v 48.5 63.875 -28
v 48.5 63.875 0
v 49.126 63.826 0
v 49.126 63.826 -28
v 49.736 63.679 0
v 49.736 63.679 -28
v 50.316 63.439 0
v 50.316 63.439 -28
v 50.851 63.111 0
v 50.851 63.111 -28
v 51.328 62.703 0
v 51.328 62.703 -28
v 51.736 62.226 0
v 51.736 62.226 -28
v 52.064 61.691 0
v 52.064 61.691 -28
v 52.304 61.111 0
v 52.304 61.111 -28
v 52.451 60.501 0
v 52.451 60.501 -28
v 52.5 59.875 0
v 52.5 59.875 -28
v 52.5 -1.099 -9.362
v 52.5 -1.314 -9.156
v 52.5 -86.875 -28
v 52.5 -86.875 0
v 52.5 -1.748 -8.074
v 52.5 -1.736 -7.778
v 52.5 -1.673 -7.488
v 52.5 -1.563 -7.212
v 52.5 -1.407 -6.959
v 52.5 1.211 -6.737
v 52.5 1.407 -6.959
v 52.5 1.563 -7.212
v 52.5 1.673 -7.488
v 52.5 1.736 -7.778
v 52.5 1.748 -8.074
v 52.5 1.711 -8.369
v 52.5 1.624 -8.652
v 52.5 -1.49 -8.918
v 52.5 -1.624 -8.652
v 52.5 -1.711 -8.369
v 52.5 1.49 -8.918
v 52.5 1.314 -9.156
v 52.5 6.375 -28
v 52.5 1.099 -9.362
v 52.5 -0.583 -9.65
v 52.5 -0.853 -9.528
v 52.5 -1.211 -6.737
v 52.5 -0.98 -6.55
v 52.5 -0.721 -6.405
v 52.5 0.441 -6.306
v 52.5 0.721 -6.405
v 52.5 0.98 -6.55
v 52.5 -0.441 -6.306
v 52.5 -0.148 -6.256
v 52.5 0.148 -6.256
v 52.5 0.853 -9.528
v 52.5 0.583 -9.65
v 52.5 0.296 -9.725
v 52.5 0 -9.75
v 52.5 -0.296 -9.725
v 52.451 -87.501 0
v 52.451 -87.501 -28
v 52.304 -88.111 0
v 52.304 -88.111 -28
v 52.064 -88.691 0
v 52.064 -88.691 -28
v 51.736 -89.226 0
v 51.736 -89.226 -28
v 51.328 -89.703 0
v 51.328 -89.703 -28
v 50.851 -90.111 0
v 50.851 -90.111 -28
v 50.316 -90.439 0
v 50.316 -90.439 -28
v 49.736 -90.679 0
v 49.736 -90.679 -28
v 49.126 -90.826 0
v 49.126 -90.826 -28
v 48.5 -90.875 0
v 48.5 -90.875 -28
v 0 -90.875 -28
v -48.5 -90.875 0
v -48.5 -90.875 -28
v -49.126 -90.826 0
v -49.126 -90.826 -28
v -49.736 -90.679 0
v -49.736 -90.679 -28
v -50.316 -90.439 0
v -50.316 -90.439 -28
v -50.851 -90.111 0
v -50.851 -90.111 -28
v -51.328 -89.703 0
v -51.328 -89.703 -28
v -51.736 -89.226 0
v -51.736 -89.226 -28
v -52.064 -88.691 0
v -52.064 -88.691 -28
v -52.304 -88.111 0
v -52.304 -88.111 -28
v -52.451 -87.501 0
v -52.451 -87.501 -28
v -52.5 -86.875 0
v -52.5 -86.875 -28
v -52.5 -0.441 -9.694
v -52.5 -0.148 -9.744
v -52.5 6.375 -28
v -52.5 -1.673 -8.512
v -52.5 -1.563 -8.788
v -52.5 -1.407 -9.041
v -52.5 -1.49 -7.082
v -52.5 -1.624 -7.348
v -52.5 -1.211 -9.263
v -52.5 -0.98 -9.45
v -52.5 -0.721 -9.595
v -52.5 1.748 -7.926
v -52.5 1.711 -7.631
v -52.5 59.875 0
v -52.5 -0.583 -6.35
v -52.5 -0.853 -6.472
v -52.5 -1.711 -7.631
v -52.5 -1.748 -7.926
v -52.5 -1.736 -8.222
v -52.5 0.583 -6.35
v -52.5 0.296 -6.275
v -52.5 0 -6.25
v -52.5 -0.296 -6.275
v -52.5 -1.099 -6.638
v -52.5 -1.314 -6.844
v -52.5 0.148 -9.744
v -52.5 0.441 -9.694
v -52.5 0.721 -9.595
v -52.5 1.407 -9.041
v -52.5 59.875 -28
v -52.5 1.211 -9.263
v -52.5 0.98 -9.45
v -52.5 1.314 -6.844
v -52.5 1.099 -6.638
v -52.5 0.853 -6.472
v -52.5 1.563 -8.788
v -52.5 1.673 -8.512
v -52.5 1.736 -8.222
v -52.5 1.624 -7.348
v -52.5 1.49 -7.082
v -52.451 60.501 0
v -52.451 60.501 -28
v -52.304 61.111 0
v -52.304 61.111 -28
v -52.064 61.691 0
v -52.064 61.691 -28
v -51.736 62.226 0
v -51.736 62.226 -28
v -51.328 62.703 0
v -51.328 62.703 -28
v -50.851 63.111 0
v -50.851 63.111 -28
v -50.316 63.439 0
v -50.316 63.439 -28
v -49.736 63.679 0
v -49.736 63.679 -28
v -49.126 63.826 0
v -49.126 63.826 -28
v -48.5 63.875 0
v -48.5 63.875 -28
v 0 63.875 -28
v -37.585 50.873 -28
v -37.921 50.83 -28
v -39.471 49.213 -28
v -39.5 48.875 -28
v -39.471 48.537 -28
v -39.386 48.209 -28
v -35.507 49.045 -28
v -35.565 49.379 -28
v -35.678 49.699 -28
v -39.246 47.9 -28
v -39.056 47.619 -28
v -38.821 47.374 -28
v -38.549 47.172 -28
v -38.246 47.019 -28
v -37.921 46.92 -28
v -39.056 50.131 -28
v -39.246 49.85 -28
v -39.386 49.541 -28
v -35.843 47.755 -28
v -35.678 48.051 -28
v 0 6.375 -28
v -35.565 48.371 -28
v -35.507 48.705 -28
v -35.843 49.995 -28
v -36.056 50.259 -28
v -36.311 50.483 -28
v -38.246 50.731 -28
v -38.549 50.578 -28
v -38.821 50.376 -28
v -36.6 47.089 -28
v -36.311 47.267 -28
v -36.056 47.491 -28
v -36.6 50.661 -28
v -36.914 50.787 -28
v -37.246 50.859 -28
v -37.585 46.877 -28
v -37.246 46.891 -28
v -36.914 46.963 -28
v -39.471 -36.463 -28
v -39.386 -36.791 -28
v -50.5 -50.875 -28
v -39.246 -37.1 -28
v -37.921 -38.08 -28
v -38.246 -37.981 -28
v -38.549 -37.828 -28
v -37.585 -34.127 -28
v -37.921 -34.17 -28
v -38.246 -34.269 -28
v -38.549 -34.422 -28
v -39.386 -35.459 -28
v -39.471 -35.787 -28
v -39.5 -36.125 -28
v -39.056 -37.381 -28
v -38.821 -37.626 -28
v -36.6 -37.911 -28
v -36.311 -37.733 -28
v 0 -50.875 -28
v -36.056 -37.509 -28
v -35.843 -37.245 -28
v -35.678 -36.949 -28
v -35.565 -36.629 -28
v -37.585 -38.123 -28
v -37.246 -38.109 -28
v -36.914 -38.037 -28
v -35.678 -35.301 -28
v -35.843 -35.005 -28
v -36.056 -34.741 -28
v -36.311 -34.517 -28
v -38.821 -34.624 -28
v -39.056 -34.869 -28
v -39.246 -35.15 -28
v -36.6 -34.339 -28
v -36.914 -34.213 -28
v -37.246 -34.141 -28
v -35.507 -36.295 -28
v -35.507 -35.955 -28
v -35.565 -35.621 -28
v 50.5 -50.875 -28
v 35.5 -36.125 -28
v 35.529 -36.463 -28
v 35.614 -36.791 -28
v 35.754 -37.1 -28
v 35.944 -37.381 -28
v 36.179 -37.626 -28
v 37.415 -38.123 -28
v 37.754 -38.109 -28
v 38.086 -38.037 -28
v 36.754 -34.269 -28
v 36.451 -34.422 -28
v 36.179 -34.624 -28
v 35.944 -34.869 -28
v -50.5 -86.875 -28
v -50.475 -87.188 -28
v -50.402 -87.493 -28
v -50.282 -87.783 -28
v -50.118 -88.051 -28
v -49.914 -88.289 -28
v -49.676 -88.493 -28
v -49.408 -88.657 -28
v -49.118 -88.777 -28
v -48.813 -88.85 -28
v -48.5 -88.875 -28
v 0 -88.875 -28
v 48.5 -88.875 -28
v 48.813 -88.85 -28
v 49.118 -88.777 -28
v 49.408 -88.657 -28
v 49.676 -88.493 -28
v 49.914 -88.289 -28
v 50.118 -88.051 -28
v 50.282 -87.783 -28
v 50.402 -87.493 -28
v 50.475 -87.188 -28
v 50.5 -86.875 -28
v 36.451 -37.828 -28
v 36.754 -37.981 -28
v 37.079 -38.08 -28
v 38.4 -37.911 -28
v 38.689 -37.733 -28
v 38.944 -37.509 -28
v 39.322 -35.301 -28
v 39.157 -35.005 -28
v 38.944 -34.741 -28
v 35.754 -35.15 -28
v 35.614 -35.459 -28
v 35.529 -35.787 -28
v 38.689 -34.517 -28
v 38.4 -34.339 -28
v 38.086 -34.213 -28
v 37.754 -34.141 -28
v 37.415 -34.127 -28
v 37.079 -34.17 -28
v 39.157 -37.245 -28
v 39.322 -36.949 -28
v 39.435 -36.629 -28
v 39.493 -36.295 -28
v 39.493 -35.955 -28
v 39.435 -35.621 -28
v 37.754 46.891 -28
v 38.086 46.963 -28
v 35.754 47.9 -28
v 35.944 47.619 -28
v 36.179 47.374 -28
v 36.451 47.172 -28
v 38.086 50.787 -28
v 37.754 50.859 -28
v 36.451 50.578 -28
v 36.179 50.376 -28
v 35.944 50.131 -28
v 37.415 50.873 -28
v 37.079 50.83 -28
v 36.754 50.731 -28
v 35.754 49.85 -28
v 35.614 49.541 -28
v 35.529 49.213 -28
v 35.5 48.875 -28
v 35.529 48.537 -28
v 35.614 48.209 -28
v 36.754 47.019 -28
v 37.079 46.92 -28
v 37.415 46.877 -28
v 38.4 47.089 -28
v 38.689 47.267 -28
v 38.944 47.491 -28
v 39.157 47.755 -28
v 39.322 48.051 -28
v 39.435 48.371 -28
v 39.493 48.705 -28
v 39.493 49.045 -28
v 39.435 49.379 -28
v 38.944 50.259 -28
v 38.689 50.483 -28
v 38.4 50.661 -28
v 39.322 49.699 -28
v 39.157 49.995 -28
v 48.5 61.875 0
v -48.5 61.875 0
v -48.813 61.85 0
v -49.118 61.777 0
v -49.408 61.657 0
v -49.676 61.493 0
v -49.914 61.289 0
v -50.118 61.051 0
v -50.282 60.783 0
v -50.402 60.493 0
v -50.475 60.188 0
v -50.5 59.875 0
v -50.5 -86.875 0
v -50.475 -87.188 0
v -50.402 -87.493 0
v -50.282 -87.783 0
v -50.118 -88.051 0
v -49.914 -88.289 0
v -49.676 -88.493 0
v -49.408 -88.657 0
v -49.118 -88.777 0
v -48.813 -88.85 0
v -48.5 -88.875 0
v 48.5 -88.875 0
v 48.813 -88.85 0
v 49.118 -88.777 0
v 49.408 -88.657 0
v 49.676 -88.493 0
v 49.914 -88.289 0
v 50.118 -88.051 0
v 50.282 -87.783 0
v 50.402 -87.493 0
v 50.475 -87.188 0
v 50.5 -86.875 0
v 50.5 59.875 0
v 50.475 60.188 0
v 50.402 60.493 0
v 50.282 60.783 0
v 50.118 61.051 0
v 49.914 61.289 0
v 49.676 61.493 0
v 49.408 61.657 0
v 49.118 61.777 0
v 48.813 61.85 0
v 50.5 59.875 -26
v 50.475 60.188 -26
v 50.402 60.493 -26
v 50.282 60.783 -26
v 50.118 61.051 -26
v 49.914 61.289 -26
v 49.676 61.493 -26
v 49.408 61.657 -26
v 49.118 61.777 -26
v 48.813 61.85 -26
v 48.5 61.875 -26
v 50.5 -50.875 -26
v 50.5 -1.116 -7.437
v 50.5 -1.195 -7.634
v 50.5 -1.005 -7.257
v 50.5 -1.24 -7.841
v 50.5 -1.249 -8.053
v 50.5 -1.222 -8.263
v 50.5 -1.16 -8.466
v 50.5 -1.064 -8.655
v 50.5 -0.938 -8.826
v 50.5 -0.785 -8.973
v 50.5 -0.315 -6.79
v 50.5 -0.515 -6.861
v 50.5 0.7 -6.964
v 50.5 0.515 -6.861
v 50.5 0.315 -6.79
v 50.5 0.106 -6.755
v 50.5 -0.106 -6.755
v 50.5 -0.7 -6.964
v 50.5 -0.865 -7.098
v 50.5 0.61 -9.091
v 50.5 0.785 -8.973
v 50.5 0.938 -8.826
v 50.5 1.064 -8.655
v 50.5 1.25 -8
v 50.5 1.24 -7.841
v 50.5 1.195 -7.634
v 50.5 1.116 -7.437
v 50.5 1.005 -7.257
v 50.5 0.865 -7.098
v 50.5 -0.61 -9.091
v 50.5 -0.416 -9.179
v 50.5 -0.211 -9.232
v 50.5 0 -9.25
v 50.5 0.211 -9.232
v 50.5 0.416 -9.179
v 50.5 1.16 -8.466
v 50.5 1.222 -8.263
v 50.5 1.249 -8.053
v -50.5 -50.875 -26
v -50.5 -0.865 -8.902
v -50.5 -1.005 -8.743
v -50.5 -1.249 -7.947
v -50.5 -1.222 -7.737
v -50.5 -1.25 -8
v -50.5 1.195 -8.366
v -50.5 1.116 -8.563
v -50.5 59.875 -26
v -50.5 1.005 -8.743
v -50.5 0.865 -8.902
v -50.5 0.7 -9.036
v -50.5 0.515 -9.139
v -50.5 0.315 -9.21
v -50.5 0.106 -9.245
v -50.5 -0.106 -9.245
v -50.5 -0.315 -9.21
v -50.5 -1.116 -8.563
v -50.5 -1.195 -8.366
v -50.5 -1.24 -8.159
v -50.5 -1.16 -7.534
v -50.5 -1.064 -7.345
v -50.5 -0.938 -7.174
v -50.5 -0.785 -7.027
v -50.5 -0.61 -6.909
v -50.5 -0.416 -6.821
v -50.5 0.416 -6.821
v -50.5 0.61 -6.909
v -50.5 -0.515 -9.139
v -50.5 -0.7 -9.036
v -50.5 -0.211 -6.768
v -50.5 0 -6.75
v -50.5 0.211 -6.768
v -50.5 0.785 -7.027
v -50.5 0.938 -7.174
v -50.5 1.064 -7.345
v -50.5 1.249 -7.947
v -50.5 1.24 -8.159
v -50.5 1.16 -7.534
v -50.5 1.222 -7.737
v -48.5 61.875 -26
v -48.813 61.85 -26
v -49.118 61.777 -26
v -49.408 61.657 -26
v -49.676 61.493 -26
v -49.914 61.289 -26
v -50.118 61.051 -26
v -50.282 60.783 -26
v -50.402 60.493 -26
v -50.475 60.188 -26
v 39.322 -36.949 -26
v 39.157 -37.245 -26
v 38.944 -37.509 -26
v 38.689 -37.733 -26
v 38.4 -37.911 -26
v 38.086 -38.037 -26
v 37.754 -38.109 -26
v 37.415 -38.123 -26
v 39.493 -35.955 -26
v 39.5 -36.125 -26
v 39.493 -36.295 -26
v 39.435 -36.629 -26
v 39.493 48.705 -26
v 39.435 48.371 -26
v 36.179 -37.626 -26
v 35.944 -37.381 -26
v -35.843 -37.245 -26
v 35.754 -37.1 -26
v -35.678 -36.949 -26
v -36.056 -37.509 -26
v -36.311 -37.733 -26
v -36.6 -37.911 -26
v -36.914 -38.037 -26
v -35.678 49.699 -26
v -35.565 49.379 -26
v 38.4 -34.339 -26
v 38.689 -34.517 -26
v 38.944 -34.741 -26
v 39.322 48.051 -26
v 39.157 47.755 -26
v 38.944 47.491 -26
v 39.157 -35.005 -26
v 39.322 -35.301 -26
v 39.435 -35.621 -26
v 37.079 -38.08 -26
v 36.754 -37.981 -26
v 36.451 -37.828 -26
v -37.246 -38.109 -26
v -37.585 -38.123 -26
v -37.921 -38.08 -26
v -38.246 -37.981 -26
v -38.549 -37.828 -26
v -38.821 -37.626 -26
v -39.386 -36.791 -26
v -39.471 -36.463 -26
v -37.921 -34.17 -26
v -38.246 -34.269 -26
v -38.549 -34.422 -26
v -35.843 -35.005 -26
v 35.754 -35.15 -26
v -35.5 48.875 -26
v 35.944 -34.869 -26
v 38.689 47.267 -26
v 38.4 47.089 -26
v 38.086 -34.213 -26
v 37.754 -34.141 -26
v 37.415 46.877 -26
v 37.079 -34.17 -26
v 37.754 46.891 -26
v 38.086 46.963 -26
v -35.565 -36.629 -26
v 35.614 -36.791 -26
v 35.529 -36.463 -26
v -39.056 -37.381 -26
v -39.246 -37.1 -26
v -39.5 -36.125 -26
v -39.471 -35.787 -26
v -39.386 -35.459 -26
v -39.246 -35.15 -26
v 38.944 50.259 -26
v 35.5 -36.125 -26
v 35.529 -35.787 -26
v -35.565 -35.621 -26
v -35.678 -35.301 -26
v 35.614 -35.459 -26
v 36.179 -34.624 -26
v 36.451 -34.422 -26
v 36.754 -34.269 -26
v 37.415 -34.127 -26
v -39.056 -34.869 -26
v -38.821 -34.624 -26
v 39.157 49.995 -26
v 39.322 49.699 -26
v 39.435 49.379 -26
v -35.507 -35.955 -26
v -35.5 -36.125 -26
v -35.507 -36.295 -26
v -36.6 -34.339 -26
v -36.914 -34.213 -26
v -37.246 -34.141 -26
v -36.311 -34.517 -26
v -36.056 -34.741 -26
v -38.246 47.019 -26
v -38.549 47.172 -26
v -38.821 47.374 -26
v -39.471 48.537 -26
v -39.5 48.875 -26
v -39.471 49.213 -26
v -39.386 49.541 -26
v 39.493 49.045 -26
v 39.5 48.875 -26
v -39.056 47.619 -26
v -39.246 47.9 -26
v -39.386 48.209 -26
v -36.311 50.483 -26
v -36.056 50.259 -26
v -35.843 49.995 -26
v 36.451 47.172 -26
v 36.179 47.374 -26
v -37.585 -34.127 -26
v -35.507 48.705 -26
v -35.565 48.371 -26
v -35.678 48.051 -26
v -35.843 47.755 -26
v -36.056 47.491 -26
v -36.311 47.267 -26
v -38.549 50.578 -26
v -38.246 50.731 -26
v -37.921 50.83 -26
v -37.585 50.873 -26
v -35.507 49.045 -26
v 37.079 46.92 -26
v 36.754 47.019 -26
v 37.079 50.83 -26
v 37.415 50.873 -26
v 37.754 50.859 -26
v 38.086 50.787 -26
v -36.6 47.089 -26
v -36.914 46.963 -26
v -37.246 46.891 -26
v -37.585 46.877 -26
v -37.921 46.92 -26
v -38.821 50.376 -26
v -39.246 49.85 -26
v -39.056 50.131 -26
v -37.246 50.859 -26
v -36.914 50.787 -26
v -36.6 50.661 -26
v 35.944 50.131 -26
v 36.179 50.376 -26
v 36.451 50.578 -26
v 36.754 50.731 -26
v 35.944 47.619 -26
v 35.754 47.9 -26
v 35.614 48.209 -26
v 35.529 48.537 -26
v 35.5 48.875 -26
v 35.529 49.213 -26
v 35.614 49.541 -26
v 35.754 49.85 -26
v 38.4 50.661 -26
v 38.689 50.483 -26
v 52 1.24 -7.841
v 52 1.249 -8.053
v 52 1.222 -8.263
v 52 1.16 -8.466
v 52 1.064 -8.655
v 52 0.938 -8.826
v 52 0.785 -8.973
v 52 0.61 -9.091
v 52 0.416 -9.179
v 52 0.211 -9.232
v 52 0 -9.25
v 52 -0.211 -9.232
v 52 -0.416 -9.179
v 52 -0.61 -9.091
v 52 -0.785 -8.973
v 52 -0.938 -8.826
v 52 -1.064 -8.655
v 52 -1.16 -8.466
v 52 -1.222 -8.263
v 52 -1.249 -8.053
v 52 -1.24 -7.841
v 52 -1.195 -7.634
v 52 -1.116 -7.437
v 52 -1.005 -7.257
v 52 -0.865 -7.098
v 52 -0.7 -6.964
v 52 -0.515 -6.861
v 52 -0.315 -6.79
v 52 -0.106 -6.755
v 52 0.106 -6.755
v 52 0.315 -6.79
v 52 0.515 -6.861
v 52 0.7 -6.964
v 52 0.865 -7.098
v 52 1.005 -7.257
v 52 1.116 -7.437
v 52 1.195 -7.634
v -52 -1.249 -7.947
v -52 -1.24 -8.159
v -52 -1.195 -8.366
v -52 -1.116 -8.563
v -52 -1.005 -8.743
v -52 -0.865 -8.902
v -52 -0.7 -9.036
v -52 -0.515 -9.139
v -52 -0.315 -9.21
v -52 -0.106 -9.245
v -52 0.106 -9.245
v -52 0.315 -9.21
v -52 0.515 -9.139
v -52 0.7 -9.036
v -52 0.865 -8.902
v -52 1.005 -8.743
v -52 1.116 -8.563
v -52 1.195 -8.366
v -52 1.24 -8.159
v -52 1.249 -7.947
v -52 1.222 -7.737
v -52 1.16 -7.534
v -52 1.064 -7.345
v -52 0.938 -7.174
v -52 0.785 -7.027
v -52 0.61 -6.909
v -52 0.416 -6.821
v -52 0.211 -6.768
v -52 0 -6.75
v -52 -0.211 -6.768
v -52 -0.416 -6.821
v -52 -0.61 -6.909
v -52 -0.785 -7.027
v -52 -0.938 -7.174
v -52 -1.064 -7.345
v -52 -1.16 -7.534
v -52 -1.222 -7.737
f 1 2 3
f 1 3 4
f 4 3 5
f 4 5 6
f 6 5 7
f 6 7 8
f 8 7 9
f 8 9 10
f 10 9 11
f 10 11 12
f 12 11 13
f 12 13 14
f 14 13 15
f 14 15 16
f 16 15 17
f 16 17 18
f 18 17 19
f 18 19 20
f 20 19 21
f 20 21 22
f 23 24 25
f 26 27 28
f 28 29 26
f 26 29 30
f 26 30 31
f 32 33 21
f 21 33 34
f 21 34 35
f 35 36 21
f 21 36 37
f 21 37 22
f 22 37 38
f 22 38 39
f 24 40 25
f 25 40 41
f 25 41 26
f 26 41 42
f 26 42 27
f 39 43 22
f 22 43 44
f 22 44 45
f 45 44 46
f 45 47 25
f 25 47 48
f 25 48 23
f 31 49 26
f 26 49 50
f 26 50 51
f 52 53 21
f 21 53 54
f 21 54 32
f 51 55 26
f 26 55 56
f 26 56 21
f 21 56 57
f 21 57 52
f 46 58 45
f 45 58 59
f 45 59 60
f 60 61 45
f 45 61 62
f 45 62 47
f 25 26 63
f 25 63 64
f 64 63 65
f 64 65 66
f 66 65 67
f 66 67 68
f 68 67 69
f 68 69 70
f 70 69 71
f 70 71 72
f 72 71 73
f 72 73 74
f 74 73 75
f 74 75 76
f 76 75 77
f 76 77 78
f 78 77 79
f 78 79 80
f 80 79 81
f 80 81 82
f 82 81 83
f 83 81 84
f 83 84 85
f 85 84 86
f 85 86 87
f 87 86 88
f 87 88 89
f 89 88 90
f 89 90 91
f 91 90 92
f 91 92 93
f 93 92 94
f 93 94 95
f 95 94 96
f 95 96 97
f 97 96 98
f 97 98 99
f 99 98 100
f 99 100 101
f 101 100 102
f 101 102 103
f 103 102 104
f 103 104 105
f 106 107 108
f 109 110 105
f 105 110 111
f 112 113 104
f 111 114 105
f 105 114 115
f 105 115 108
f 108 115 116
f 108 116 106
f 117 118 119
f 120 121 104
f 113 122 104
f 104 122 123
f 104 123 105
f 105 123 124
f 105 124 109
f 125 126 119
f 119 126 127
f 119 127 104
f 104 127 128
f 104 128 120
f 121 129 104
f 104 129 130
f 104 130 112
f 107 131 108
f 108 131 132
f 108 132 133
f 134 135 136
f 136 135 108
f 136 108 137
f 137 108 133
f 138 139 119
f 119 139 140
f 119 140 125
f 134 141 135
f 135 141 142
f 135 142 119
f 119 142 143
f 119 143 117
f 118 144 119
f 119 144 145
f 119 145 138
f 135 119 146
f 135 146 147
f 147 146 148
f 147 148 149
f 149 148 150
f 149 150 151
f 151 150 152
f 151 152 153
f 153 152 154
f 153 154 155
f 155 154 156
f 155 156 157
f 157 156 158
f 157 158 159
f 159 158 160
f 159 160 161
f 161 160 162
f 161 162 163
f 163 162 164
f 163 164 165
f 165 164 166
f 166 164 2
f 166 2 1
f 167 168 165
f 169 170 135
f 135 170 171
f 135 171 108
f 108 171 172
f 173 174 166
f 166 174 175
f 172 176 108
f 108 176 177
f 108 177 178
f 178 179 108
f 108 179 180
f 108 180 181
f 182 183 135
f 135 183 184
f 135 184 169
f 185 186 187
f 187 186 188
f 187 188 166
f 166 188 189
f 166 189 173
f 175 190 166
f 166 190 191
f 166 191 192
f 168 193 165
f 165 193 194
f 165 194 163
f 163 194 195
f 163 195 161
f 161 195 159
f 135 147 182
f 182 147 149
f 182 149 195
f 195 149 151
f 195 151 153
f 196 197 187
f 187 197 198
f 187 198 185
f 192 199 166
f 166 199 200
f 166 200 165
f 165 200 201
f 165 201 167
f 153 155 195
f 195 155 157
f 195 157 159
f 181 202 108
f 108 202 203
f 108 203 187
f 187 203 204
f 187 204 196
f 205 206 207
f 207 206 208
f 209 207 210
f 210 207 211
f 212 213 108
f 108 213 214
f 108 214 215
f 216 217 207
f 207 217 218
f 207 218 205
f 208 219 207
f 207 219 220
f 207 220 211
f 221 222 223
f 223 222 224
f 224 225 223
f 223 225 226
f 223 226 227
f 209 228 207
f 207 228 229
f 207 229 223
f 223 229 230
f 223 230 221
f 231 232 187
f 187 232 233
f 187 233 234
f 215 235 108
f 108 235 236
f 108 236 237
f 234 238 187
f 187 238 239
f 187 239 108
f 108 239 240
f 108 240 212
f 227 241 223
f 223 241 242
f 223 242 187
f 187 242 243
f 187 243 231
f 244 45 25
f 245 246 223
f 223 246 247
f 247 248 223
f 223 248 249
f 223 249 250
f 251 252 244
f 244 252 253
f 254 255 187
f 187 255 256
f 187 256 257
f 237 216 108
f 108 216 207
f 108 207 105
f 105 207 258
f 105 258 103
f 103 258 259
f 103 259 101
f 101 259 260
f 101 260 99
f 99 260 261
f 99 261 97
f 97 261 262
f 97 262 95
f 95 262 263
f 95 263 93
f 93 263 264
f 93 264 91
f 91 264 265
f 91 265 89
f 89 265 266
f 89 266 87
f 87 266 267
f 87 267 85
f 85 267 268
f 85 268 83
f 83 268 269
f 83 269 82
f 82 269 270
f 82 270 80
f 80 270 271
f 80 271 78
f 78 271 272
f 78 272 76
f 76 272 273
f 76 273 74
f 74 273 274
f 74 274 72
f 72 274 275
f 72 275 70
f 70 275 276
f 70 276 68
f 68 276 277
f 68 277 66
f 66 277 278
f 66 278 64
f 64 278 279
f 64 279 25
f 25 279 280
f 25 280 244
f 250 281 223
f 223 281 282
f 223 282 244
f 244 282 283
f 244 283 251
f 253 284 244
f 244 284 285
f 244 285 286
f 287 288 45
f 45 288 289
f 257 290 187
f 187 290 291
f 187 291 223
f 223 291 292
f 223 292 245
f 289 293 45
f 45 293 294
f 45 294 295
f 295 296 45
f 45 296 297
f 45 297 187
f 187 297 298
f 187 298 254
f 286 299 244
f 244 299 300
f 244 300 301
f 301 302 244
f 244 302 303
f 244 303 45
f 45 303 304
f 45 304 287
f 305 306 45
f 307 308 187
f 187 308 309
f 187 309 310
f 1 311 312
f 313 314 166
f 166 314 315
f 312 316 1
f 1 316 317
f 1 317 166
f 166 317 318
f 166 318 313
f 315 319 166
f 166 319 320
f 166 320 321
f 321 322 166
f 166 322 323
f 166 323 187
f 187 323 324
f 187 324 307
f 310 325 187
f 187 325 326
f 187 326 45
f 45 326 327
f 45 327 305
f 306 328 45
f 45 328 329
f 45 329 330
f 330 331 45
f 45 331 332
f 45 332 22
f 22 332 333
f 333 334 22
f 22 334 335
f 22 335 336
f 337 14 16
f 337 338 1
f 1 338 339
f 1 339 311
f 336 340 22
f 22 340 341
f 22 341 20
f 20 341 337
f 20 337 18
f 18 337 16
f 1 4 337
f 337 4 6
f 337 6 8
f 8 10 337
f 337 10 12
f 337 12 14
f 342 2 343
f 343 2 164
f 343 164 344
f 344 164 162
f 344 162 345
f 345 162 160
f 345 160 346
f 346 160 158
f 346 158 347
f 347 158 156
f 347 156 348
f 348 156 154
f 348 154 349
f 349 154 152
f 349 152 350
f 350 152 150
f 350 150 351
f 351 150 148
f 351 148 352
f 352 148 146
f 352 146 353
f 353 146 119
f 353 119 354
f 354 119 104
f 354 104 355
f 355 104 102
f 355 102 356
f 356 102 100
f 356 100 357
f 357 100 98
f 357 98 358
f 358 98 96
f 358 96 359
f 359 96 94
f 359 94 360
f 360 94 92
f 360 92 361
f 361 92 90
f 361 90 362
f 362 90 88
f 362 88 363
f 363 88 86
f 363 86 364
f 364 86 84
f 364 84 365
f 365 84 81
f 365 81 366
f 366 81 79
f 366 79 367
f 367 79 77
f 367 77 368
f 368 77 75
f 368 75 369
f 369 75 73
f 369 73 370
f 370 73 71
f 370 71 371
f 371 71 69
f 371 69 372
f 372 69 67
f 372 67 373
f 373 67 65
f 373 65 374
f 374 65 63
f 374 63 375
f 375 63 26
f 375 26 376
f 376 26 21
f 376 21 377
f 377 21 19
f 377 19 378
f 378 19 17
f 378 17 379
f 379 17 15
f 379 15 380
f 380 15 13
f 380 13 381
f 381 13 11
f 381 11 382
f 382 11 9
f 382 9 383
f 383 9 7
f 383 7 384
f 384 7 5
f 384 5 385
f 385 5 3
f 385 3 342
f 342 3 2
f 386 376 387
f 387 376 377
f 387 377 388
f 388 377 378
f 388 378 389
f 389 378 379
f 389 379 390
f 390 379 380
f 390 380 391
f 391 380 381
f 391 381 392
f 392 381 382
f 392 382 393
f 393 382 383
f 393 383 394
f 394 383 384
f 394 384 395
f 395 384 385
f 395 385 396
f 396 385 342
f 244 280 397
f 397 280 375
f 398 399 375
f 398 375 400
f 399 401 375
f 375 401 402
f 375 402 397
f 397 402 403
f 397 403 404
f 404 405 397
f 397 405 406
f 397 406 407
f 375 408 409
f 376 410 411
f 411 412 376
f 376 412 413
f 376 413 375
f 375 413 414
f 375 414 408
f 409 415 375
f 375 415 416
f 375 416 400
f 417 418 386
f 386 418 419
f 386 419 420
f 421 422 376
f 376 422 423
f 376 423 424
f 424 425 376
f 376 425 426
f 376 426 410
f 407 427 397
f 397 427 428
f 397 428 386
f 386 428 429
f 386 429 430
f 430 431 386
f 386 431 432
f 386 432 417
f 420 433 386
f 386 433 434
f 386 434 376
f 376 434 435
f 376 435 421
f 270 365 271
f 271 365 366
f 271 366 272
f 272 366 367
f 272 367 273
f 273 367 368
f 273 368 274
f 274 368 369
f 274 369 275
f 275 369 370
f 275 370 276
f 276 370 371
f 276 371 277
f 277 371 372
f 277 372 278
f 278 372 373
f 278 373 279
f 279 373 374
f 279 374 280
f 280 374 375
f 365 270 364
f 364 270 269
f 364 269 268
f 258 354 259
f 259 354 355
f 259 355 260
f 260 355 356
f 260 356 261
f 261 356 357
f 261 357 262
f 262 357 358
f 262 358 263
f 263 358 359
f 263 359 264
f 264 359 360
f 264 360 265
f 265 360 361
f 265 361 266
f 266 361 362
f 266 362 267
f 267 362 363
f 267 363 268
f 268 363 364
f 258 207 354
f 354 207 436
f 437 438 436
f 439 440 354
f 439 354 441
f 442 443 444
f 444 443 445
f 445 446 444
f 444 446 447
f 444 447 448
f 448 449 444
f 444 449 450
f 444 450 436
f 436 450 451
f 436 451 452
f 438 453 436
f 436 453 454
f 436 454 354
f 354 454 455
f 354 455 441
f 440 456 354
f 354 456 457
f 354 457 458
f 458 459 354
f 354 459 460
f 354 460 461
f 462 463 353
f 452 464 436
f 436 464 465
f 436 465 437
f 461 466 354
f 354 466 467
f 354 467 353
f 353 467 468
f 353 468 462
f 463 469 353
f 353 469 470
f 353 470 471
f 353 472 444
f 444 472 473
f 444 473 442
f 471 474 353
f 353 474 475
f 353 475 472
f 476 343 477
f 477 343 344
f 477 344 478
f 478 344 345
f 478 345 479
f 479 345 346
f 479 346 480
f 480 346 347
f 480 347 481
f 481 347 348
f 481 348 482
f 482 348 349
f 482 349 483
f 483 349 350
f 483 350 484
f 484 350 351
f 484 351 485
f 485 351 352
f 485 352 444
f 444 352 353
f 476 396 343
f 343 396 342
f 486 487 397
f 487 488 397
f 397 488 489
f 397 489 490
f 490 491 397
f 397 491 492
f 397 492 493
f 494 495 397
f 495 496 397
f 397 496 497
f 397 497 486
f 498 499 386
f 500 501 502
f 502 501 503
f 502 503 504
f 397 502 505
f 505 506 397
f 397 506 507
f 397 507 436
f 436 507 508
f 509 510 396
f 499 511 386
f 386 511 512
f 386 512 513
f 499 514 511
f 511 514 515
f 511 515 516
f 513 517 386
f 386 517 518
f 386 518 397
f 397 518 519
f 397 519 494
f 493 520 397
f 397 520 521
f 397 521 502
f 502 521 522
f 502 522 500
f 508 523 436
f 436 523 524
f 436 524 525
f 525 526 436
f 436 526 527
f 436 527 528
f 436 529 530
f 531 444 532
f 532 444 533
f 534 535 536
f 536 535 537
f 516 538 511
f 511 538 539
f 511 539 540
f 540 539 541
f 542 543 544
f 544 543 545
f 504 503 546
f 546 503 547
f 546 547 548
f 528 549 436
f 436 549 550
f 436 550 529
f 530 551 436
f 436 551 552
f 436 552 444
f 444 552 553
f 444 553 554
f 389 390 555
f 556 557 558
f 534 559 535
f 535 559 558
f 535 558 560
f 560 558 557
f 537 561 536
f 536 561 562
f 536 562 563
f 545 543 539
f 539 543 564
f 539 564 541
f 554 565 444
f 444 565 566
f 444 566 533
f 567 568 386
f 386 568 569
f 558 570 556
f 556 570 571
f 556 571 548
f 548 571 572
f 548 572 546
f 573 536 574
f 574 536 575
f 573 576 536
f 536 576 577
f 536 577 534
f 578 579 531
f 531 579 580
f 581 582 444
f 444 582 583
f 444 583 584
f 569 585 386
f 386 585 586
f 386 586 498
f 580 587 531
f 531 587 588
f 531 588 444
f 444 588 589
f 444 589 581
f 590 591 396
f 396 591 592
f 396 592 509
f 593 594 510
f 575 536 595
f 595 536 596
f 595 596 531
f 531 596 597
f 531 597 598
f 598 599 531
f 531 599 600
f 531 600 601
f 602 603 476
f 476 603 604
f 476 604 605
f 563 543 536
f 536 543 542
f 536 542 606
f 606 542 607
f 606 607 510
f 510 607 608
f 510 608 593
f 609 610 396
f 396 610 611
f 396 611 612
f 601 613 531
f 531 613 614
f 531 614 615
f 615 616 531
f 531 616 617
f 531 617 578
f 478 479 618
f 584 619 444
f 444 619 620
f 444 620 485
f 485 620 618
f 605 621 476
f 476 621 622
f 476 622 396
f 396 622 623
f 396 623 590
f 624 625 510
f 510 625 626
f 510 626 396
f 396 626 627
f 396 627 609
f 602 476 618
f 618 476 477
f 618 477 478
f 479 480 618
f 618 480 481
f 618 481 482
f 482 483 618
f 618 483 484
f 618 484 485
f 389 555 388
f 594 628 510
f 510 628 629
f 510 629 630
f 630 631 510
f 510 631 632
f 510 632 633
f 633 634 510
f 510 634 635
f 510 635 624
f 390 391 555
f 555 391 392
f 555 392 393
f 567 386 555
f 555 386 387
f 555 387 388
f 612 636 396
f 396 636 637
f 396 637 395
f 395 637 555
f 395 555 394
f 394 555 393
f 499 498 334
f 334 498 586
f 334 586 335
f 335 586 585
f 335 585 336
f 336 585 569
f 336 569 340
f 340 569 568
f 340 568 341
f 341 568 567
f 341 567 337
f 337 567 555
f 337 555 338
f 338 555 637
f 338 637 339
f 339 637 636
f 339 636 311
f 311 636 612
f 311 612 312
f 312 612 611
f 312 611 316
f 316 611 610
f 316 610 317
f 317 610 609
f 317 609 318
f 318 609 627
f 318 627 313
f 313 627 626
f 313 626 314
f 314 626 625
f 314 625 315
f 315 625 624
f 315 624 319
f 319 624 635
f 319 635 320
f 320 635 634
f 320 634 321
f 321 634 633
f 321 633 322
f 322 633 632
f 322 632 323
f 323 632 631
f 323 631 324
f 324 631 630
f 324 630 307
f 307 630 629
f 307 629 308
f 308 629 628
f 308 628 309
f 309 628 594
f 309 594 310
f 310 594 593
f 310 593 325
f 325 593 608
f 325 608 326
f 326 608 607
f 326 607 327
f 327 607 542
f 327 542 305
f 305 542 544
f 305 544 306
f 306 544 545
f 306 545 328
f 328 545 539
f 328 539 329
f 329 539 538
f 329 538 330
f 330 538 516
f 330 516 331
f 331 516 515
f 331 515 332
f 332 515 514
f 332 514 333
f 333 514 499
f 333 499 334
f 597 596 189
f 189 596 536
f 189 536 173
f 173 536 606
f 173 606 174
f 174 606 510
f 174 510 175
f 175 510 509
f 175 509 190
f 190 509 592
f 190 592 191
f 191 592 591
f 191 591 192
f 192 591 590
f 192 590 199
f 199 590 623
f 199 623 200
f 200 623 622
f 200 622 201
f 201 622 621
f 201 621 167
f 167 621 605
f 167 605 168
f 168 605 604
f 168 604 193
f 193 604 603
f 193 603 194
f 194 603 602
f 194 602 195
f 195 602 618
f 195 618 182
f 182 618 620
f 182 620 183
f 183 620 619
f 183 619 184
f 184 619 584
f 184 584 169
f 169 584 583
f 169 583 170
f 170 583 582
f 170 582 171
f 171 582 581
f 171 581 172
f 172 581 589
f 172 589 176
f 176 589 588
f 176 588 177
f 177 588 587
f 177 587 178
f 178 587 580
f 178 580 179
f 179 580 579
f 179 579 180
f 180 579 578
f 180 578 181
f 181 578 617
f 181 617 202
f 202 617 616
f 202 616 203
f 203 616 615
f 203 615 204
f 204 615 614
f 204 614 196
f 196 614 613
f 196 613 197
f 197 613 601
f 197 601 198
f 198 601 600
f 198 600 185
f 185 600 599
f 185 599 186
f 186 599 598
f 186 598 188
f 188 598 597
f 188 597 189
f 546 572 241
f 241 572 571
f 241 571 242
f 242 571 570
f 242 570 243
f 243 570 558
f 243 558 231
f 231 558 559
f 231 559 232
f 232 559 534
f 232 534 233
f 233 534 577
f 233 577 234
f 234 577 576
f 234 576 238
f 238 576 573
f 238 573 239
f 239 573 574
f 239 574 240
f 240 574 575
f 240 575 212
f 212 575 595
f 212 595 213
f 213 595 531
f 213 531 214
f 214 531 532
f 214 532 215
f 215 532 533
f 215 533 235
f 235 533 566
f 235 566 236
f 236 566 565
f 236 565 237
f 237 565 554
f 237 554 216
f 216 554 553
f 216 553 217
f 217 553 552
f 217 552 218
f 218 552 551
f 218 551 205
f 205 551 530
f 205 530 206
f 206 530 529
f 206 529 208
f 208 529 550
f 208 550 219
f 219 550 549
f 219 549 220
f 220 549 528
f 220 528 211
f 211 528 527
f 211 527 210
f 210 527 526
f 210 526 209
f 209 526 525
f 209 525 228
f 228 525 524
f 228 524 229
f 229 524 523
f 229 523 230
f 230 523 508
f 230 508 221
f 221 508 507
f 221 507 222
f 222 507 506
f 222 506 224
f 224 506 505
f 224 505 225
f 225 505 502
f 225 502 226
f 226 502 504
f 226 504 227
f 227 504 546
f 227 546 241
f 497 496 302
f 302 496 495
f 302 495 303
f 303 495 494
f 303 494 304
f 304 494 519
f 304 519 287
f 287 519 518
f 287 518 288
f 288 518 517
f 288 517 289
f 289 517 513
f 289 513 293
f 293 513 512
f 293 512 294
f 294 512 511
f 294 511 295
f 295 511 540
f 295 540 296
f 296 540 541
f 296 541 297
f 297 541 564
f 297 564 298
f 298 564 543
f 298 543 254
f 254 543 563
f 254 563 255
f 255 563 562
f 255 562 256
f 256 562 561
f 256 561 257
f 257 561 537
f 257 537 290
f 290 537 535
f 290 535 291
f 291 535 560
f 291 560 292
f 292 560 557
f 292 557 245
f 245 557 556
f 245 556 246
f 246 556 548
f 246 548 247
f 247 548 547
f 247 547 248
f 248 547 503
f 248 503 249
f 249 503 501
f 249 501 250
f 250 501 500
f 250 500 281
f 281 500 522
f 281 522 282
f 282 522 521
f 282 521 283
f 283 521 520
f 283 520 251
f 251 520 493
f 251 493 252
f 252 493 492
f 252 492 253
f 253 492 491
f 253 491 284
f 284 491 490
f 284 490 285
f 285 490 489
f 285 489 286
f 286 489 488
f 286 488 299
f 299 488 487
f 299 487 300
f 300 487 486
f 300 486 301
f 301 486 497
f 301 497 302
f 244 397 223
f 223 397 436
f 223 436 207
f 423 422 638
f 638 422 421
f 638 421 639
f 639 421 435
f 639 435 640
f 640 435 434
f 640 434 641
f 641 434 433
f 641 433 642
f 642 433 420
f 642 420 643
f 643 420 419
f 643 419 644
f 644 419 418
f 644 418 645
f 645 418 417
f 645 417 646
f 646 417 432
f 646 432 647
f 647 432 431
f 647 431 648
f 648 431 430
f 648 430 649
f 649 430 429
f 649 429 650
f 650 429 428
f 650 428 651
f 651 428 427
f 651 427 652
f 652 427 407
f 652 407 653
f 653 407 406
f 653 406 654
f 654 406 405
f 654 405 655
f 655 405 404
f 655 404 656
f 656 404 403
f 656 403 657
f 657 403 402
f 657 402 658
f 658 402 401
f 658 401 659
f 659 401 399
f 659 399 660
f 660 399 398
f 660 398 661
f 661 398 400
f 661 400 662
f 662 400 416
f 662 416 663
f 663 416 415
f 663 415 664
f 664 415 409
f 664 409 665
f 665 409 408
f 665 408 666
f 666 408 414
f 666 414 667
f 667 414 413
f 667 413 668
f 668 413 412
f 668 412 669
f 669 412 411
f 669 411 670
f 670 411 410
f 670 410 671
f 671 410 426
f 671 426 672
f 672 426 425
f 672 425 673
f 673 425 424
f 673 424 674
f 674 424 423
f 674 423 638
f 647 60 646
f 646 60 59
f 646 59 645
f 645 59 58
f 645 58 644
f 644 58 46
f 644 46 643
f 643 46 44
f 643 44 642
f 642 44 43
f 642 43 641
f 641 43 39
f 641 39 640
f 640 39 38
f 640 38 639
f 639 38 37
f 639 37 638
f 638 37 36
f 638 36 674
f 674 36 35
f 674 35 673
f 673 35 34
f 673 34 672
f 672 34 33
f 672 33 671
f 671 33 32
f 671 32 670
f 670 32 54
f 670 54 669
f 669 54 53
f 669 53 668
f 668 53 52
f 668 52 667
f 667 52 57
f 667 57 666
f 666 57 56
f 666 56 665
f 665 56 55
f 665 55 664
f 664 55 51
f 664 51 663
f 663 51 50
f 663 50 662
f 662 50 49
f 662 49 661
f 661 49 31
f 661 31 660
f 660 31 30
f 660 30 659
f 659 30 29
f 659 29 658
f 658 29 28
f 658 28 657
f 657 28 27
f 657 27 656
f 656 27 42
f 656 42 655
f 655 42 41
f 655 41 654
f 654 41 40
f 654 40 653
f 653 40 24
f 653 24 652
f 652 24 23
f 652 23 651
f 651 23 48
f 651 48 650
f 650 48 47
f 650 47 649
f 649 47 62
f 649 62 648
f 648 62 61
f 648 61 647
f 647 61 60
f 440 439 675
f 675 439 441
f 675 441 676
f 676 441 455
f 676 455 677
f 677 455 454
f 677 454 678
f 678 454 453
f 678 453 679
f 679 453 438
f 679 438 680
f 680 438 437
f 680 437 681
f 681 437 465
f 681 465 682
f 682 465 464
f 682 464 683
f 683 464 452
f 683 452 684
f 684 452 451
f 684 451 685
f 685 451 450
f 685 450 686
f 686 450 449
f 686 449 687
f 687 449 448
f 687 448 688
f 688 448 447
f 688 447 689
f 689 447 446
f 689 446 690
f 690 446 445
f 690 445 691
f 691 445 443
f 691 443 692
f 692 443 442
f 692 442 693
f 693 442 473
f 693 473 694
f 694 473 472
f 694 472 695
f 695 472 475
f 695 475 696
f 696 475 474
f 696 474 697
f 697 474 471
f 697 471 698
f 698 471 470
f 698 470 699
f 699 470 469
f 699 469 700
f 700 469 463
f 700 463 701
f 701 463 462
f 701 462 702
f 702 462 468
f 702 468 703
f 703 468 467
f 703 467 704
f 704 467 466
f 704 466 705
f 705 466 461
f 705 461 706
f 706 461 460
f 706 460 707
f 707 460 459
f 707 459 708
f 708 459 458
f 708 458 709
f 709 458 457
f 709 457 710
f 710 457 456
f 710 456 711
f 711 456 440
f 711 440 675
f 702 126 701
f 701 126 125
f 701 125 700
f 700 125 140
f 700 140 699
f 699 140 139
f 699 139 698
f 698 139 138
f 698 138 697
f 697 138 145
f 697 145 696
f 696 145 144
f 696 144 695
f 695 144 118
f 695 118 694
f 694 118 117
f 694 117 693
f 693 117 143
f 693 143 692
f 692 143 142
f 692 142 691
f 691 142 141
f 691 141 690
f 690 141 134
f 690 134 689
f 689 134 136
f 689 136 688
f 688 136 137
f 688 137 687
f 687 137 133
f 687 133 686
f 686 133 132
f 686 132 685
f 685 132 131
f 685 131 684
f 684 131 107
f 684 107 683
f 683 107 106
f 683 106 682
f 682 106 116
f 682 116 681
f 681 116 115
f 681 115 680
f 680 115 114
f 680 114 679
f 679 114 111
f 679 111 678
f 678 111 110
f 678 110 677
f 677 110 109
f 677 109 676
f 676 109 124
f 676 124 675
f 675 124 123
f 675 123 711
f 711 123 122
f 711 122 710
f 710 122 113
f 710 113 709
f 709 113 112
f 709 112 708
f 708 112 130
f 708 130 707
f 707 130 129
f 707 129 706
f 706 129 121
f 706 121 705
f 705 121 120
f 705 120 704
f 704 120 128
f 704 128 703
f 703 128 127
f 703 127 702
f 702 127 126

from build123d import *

# Parameters (mm, degrees)
BOSS_EXTRUDE1_DEPTH         = 28
SHELL1_T                    = -2
CUT_EXTRUDE1_START          = -10
SKETCH2_R                   = 2
CUT_EXTRUDE1_DEPTH          = 10
M3_TAPPED_HOLE1_D           = 2.5
M3_TAPPED_HOLE1_DEPTH       = 2
M3_TAPPED_HOLE1_CSINK_D     = 3.5
M3_TAPPED_HOLE1_CSINK_ANGLE = 90
M3_TAPPED_HOLE2_D           = 2.5
M3_TAPPED_HOLE2_CSINK_D     = 3.5
M3_TAPPED_HOLE2_CSINK_ANGLE = 90


with BuildPart() as part:
    # Sketch1 → Boss-Extrude1 (new body)
    with BuildSketch(Plane.XY):
        with BuildLine():
            Line((-48.5, 63.875), (48.5, 63.875))
            ThreePointArc((48.5, 63.875), (51.328427125, 62.703427125), (52.5, 59.875))
            Line((52.5, 59.875), (52.5, -86.875))
            ThreePointArc((52.5, -86.875), (51.328427125, -89.703427125), (48.5, -90.875))
            Line((48.5, -90.875), (-48.5, -90.875))
            ThreePointArc((-48.5, -90.875), (-51.328427125, -89.703427125), (-52.5, -86.875))
            Line((-52.5, -86.875), (-52.5, 59.875))
            ThreePointArc((-52.5, 59.875), (-51.328427125, 62.703427125), (-48.5, 63.875))
        make_face()
    extrude(amount=-BOSS_EXTRUDE1_DEPTH)

    # Shell1
    shell1_openings = [part.faces().sort_by_distance(p)[0] for p in [
        (0, -13.5, 0),
    ]]
    offset(amount=SHELL1_T, openings=shell1_openings, kind=Kind.INTERSECTION)

    # Sketch2 → Cut-Extrude1 (cut)
    with BuildSketch(Plane(origin=(0, 0, -28), x_dir=(-1, 0, 0), z_dir=(0, 0, -1)).offset(CUT_EXTRUDE1_START)):
        with Locations((-37.5, 48.875)):
            Circle(SKETCH2_R)
        with Locations((37.5, 48.875)):
            Circle(SKETCH2_R)
        with Locations((37.5, -36.125)):
            Circle(SKETCH2_R)
        with Locations((-37.5, -36.125)):
            Circle(SKETCH2_R)
        with BuildLine():
            Line((-50.5, -50.875), (50.5, -50.875))
            Line((50.5, -50.875), (50.5, -86.875))
            ThreePointArc((50.5, -86.875), (49.914213562, -88.289213562), (48.5, -88.875))
            Line((48.5, -88.875), (-48.5, -88.875))
            ThreePointArc((-48.5, -88.875), (-49.914213562, -88.289213562), (-50.5, -86.875))
            Line((-50.5, -86.875), (-50.5, -50.875))
        make_face()
    extrude(amount=CUT_EXTRUDE1_DEPTH, mode=Mode.SUBTRACT)

    # M3 Tapped Hole1
    with Locations(Plane(origin=(52.5, 0, 0), x_dir=(0, 0, -1), z_dir=(1, 0, 0))):
        with Locations((8, 0)):
            CounterSinkHole(M3_TAPPED_HOLE1_D / 2, M3_TAPPED_HOLE1_CSINK_D / 2, depth=M3_TAPPED_HOLE1_DEPTH, counter_sink_angle=M3_TAPPED_HOLE1_CSINK_ANGLE)

    # M3 Tapped Hole2 (through all)
    with Locations(Plane.ZY.offset(52.5)):
        with Locations((-8, 0)):
            CounterSinkHole(M3_TAPPED_HOLE2_D / 2, M3_TAPPED_HOLE2_CSINK_D / 2, counter_sink_angle=M3_TAPPED_HOLE2_CSINK_ANGLE)


solid = part.part
